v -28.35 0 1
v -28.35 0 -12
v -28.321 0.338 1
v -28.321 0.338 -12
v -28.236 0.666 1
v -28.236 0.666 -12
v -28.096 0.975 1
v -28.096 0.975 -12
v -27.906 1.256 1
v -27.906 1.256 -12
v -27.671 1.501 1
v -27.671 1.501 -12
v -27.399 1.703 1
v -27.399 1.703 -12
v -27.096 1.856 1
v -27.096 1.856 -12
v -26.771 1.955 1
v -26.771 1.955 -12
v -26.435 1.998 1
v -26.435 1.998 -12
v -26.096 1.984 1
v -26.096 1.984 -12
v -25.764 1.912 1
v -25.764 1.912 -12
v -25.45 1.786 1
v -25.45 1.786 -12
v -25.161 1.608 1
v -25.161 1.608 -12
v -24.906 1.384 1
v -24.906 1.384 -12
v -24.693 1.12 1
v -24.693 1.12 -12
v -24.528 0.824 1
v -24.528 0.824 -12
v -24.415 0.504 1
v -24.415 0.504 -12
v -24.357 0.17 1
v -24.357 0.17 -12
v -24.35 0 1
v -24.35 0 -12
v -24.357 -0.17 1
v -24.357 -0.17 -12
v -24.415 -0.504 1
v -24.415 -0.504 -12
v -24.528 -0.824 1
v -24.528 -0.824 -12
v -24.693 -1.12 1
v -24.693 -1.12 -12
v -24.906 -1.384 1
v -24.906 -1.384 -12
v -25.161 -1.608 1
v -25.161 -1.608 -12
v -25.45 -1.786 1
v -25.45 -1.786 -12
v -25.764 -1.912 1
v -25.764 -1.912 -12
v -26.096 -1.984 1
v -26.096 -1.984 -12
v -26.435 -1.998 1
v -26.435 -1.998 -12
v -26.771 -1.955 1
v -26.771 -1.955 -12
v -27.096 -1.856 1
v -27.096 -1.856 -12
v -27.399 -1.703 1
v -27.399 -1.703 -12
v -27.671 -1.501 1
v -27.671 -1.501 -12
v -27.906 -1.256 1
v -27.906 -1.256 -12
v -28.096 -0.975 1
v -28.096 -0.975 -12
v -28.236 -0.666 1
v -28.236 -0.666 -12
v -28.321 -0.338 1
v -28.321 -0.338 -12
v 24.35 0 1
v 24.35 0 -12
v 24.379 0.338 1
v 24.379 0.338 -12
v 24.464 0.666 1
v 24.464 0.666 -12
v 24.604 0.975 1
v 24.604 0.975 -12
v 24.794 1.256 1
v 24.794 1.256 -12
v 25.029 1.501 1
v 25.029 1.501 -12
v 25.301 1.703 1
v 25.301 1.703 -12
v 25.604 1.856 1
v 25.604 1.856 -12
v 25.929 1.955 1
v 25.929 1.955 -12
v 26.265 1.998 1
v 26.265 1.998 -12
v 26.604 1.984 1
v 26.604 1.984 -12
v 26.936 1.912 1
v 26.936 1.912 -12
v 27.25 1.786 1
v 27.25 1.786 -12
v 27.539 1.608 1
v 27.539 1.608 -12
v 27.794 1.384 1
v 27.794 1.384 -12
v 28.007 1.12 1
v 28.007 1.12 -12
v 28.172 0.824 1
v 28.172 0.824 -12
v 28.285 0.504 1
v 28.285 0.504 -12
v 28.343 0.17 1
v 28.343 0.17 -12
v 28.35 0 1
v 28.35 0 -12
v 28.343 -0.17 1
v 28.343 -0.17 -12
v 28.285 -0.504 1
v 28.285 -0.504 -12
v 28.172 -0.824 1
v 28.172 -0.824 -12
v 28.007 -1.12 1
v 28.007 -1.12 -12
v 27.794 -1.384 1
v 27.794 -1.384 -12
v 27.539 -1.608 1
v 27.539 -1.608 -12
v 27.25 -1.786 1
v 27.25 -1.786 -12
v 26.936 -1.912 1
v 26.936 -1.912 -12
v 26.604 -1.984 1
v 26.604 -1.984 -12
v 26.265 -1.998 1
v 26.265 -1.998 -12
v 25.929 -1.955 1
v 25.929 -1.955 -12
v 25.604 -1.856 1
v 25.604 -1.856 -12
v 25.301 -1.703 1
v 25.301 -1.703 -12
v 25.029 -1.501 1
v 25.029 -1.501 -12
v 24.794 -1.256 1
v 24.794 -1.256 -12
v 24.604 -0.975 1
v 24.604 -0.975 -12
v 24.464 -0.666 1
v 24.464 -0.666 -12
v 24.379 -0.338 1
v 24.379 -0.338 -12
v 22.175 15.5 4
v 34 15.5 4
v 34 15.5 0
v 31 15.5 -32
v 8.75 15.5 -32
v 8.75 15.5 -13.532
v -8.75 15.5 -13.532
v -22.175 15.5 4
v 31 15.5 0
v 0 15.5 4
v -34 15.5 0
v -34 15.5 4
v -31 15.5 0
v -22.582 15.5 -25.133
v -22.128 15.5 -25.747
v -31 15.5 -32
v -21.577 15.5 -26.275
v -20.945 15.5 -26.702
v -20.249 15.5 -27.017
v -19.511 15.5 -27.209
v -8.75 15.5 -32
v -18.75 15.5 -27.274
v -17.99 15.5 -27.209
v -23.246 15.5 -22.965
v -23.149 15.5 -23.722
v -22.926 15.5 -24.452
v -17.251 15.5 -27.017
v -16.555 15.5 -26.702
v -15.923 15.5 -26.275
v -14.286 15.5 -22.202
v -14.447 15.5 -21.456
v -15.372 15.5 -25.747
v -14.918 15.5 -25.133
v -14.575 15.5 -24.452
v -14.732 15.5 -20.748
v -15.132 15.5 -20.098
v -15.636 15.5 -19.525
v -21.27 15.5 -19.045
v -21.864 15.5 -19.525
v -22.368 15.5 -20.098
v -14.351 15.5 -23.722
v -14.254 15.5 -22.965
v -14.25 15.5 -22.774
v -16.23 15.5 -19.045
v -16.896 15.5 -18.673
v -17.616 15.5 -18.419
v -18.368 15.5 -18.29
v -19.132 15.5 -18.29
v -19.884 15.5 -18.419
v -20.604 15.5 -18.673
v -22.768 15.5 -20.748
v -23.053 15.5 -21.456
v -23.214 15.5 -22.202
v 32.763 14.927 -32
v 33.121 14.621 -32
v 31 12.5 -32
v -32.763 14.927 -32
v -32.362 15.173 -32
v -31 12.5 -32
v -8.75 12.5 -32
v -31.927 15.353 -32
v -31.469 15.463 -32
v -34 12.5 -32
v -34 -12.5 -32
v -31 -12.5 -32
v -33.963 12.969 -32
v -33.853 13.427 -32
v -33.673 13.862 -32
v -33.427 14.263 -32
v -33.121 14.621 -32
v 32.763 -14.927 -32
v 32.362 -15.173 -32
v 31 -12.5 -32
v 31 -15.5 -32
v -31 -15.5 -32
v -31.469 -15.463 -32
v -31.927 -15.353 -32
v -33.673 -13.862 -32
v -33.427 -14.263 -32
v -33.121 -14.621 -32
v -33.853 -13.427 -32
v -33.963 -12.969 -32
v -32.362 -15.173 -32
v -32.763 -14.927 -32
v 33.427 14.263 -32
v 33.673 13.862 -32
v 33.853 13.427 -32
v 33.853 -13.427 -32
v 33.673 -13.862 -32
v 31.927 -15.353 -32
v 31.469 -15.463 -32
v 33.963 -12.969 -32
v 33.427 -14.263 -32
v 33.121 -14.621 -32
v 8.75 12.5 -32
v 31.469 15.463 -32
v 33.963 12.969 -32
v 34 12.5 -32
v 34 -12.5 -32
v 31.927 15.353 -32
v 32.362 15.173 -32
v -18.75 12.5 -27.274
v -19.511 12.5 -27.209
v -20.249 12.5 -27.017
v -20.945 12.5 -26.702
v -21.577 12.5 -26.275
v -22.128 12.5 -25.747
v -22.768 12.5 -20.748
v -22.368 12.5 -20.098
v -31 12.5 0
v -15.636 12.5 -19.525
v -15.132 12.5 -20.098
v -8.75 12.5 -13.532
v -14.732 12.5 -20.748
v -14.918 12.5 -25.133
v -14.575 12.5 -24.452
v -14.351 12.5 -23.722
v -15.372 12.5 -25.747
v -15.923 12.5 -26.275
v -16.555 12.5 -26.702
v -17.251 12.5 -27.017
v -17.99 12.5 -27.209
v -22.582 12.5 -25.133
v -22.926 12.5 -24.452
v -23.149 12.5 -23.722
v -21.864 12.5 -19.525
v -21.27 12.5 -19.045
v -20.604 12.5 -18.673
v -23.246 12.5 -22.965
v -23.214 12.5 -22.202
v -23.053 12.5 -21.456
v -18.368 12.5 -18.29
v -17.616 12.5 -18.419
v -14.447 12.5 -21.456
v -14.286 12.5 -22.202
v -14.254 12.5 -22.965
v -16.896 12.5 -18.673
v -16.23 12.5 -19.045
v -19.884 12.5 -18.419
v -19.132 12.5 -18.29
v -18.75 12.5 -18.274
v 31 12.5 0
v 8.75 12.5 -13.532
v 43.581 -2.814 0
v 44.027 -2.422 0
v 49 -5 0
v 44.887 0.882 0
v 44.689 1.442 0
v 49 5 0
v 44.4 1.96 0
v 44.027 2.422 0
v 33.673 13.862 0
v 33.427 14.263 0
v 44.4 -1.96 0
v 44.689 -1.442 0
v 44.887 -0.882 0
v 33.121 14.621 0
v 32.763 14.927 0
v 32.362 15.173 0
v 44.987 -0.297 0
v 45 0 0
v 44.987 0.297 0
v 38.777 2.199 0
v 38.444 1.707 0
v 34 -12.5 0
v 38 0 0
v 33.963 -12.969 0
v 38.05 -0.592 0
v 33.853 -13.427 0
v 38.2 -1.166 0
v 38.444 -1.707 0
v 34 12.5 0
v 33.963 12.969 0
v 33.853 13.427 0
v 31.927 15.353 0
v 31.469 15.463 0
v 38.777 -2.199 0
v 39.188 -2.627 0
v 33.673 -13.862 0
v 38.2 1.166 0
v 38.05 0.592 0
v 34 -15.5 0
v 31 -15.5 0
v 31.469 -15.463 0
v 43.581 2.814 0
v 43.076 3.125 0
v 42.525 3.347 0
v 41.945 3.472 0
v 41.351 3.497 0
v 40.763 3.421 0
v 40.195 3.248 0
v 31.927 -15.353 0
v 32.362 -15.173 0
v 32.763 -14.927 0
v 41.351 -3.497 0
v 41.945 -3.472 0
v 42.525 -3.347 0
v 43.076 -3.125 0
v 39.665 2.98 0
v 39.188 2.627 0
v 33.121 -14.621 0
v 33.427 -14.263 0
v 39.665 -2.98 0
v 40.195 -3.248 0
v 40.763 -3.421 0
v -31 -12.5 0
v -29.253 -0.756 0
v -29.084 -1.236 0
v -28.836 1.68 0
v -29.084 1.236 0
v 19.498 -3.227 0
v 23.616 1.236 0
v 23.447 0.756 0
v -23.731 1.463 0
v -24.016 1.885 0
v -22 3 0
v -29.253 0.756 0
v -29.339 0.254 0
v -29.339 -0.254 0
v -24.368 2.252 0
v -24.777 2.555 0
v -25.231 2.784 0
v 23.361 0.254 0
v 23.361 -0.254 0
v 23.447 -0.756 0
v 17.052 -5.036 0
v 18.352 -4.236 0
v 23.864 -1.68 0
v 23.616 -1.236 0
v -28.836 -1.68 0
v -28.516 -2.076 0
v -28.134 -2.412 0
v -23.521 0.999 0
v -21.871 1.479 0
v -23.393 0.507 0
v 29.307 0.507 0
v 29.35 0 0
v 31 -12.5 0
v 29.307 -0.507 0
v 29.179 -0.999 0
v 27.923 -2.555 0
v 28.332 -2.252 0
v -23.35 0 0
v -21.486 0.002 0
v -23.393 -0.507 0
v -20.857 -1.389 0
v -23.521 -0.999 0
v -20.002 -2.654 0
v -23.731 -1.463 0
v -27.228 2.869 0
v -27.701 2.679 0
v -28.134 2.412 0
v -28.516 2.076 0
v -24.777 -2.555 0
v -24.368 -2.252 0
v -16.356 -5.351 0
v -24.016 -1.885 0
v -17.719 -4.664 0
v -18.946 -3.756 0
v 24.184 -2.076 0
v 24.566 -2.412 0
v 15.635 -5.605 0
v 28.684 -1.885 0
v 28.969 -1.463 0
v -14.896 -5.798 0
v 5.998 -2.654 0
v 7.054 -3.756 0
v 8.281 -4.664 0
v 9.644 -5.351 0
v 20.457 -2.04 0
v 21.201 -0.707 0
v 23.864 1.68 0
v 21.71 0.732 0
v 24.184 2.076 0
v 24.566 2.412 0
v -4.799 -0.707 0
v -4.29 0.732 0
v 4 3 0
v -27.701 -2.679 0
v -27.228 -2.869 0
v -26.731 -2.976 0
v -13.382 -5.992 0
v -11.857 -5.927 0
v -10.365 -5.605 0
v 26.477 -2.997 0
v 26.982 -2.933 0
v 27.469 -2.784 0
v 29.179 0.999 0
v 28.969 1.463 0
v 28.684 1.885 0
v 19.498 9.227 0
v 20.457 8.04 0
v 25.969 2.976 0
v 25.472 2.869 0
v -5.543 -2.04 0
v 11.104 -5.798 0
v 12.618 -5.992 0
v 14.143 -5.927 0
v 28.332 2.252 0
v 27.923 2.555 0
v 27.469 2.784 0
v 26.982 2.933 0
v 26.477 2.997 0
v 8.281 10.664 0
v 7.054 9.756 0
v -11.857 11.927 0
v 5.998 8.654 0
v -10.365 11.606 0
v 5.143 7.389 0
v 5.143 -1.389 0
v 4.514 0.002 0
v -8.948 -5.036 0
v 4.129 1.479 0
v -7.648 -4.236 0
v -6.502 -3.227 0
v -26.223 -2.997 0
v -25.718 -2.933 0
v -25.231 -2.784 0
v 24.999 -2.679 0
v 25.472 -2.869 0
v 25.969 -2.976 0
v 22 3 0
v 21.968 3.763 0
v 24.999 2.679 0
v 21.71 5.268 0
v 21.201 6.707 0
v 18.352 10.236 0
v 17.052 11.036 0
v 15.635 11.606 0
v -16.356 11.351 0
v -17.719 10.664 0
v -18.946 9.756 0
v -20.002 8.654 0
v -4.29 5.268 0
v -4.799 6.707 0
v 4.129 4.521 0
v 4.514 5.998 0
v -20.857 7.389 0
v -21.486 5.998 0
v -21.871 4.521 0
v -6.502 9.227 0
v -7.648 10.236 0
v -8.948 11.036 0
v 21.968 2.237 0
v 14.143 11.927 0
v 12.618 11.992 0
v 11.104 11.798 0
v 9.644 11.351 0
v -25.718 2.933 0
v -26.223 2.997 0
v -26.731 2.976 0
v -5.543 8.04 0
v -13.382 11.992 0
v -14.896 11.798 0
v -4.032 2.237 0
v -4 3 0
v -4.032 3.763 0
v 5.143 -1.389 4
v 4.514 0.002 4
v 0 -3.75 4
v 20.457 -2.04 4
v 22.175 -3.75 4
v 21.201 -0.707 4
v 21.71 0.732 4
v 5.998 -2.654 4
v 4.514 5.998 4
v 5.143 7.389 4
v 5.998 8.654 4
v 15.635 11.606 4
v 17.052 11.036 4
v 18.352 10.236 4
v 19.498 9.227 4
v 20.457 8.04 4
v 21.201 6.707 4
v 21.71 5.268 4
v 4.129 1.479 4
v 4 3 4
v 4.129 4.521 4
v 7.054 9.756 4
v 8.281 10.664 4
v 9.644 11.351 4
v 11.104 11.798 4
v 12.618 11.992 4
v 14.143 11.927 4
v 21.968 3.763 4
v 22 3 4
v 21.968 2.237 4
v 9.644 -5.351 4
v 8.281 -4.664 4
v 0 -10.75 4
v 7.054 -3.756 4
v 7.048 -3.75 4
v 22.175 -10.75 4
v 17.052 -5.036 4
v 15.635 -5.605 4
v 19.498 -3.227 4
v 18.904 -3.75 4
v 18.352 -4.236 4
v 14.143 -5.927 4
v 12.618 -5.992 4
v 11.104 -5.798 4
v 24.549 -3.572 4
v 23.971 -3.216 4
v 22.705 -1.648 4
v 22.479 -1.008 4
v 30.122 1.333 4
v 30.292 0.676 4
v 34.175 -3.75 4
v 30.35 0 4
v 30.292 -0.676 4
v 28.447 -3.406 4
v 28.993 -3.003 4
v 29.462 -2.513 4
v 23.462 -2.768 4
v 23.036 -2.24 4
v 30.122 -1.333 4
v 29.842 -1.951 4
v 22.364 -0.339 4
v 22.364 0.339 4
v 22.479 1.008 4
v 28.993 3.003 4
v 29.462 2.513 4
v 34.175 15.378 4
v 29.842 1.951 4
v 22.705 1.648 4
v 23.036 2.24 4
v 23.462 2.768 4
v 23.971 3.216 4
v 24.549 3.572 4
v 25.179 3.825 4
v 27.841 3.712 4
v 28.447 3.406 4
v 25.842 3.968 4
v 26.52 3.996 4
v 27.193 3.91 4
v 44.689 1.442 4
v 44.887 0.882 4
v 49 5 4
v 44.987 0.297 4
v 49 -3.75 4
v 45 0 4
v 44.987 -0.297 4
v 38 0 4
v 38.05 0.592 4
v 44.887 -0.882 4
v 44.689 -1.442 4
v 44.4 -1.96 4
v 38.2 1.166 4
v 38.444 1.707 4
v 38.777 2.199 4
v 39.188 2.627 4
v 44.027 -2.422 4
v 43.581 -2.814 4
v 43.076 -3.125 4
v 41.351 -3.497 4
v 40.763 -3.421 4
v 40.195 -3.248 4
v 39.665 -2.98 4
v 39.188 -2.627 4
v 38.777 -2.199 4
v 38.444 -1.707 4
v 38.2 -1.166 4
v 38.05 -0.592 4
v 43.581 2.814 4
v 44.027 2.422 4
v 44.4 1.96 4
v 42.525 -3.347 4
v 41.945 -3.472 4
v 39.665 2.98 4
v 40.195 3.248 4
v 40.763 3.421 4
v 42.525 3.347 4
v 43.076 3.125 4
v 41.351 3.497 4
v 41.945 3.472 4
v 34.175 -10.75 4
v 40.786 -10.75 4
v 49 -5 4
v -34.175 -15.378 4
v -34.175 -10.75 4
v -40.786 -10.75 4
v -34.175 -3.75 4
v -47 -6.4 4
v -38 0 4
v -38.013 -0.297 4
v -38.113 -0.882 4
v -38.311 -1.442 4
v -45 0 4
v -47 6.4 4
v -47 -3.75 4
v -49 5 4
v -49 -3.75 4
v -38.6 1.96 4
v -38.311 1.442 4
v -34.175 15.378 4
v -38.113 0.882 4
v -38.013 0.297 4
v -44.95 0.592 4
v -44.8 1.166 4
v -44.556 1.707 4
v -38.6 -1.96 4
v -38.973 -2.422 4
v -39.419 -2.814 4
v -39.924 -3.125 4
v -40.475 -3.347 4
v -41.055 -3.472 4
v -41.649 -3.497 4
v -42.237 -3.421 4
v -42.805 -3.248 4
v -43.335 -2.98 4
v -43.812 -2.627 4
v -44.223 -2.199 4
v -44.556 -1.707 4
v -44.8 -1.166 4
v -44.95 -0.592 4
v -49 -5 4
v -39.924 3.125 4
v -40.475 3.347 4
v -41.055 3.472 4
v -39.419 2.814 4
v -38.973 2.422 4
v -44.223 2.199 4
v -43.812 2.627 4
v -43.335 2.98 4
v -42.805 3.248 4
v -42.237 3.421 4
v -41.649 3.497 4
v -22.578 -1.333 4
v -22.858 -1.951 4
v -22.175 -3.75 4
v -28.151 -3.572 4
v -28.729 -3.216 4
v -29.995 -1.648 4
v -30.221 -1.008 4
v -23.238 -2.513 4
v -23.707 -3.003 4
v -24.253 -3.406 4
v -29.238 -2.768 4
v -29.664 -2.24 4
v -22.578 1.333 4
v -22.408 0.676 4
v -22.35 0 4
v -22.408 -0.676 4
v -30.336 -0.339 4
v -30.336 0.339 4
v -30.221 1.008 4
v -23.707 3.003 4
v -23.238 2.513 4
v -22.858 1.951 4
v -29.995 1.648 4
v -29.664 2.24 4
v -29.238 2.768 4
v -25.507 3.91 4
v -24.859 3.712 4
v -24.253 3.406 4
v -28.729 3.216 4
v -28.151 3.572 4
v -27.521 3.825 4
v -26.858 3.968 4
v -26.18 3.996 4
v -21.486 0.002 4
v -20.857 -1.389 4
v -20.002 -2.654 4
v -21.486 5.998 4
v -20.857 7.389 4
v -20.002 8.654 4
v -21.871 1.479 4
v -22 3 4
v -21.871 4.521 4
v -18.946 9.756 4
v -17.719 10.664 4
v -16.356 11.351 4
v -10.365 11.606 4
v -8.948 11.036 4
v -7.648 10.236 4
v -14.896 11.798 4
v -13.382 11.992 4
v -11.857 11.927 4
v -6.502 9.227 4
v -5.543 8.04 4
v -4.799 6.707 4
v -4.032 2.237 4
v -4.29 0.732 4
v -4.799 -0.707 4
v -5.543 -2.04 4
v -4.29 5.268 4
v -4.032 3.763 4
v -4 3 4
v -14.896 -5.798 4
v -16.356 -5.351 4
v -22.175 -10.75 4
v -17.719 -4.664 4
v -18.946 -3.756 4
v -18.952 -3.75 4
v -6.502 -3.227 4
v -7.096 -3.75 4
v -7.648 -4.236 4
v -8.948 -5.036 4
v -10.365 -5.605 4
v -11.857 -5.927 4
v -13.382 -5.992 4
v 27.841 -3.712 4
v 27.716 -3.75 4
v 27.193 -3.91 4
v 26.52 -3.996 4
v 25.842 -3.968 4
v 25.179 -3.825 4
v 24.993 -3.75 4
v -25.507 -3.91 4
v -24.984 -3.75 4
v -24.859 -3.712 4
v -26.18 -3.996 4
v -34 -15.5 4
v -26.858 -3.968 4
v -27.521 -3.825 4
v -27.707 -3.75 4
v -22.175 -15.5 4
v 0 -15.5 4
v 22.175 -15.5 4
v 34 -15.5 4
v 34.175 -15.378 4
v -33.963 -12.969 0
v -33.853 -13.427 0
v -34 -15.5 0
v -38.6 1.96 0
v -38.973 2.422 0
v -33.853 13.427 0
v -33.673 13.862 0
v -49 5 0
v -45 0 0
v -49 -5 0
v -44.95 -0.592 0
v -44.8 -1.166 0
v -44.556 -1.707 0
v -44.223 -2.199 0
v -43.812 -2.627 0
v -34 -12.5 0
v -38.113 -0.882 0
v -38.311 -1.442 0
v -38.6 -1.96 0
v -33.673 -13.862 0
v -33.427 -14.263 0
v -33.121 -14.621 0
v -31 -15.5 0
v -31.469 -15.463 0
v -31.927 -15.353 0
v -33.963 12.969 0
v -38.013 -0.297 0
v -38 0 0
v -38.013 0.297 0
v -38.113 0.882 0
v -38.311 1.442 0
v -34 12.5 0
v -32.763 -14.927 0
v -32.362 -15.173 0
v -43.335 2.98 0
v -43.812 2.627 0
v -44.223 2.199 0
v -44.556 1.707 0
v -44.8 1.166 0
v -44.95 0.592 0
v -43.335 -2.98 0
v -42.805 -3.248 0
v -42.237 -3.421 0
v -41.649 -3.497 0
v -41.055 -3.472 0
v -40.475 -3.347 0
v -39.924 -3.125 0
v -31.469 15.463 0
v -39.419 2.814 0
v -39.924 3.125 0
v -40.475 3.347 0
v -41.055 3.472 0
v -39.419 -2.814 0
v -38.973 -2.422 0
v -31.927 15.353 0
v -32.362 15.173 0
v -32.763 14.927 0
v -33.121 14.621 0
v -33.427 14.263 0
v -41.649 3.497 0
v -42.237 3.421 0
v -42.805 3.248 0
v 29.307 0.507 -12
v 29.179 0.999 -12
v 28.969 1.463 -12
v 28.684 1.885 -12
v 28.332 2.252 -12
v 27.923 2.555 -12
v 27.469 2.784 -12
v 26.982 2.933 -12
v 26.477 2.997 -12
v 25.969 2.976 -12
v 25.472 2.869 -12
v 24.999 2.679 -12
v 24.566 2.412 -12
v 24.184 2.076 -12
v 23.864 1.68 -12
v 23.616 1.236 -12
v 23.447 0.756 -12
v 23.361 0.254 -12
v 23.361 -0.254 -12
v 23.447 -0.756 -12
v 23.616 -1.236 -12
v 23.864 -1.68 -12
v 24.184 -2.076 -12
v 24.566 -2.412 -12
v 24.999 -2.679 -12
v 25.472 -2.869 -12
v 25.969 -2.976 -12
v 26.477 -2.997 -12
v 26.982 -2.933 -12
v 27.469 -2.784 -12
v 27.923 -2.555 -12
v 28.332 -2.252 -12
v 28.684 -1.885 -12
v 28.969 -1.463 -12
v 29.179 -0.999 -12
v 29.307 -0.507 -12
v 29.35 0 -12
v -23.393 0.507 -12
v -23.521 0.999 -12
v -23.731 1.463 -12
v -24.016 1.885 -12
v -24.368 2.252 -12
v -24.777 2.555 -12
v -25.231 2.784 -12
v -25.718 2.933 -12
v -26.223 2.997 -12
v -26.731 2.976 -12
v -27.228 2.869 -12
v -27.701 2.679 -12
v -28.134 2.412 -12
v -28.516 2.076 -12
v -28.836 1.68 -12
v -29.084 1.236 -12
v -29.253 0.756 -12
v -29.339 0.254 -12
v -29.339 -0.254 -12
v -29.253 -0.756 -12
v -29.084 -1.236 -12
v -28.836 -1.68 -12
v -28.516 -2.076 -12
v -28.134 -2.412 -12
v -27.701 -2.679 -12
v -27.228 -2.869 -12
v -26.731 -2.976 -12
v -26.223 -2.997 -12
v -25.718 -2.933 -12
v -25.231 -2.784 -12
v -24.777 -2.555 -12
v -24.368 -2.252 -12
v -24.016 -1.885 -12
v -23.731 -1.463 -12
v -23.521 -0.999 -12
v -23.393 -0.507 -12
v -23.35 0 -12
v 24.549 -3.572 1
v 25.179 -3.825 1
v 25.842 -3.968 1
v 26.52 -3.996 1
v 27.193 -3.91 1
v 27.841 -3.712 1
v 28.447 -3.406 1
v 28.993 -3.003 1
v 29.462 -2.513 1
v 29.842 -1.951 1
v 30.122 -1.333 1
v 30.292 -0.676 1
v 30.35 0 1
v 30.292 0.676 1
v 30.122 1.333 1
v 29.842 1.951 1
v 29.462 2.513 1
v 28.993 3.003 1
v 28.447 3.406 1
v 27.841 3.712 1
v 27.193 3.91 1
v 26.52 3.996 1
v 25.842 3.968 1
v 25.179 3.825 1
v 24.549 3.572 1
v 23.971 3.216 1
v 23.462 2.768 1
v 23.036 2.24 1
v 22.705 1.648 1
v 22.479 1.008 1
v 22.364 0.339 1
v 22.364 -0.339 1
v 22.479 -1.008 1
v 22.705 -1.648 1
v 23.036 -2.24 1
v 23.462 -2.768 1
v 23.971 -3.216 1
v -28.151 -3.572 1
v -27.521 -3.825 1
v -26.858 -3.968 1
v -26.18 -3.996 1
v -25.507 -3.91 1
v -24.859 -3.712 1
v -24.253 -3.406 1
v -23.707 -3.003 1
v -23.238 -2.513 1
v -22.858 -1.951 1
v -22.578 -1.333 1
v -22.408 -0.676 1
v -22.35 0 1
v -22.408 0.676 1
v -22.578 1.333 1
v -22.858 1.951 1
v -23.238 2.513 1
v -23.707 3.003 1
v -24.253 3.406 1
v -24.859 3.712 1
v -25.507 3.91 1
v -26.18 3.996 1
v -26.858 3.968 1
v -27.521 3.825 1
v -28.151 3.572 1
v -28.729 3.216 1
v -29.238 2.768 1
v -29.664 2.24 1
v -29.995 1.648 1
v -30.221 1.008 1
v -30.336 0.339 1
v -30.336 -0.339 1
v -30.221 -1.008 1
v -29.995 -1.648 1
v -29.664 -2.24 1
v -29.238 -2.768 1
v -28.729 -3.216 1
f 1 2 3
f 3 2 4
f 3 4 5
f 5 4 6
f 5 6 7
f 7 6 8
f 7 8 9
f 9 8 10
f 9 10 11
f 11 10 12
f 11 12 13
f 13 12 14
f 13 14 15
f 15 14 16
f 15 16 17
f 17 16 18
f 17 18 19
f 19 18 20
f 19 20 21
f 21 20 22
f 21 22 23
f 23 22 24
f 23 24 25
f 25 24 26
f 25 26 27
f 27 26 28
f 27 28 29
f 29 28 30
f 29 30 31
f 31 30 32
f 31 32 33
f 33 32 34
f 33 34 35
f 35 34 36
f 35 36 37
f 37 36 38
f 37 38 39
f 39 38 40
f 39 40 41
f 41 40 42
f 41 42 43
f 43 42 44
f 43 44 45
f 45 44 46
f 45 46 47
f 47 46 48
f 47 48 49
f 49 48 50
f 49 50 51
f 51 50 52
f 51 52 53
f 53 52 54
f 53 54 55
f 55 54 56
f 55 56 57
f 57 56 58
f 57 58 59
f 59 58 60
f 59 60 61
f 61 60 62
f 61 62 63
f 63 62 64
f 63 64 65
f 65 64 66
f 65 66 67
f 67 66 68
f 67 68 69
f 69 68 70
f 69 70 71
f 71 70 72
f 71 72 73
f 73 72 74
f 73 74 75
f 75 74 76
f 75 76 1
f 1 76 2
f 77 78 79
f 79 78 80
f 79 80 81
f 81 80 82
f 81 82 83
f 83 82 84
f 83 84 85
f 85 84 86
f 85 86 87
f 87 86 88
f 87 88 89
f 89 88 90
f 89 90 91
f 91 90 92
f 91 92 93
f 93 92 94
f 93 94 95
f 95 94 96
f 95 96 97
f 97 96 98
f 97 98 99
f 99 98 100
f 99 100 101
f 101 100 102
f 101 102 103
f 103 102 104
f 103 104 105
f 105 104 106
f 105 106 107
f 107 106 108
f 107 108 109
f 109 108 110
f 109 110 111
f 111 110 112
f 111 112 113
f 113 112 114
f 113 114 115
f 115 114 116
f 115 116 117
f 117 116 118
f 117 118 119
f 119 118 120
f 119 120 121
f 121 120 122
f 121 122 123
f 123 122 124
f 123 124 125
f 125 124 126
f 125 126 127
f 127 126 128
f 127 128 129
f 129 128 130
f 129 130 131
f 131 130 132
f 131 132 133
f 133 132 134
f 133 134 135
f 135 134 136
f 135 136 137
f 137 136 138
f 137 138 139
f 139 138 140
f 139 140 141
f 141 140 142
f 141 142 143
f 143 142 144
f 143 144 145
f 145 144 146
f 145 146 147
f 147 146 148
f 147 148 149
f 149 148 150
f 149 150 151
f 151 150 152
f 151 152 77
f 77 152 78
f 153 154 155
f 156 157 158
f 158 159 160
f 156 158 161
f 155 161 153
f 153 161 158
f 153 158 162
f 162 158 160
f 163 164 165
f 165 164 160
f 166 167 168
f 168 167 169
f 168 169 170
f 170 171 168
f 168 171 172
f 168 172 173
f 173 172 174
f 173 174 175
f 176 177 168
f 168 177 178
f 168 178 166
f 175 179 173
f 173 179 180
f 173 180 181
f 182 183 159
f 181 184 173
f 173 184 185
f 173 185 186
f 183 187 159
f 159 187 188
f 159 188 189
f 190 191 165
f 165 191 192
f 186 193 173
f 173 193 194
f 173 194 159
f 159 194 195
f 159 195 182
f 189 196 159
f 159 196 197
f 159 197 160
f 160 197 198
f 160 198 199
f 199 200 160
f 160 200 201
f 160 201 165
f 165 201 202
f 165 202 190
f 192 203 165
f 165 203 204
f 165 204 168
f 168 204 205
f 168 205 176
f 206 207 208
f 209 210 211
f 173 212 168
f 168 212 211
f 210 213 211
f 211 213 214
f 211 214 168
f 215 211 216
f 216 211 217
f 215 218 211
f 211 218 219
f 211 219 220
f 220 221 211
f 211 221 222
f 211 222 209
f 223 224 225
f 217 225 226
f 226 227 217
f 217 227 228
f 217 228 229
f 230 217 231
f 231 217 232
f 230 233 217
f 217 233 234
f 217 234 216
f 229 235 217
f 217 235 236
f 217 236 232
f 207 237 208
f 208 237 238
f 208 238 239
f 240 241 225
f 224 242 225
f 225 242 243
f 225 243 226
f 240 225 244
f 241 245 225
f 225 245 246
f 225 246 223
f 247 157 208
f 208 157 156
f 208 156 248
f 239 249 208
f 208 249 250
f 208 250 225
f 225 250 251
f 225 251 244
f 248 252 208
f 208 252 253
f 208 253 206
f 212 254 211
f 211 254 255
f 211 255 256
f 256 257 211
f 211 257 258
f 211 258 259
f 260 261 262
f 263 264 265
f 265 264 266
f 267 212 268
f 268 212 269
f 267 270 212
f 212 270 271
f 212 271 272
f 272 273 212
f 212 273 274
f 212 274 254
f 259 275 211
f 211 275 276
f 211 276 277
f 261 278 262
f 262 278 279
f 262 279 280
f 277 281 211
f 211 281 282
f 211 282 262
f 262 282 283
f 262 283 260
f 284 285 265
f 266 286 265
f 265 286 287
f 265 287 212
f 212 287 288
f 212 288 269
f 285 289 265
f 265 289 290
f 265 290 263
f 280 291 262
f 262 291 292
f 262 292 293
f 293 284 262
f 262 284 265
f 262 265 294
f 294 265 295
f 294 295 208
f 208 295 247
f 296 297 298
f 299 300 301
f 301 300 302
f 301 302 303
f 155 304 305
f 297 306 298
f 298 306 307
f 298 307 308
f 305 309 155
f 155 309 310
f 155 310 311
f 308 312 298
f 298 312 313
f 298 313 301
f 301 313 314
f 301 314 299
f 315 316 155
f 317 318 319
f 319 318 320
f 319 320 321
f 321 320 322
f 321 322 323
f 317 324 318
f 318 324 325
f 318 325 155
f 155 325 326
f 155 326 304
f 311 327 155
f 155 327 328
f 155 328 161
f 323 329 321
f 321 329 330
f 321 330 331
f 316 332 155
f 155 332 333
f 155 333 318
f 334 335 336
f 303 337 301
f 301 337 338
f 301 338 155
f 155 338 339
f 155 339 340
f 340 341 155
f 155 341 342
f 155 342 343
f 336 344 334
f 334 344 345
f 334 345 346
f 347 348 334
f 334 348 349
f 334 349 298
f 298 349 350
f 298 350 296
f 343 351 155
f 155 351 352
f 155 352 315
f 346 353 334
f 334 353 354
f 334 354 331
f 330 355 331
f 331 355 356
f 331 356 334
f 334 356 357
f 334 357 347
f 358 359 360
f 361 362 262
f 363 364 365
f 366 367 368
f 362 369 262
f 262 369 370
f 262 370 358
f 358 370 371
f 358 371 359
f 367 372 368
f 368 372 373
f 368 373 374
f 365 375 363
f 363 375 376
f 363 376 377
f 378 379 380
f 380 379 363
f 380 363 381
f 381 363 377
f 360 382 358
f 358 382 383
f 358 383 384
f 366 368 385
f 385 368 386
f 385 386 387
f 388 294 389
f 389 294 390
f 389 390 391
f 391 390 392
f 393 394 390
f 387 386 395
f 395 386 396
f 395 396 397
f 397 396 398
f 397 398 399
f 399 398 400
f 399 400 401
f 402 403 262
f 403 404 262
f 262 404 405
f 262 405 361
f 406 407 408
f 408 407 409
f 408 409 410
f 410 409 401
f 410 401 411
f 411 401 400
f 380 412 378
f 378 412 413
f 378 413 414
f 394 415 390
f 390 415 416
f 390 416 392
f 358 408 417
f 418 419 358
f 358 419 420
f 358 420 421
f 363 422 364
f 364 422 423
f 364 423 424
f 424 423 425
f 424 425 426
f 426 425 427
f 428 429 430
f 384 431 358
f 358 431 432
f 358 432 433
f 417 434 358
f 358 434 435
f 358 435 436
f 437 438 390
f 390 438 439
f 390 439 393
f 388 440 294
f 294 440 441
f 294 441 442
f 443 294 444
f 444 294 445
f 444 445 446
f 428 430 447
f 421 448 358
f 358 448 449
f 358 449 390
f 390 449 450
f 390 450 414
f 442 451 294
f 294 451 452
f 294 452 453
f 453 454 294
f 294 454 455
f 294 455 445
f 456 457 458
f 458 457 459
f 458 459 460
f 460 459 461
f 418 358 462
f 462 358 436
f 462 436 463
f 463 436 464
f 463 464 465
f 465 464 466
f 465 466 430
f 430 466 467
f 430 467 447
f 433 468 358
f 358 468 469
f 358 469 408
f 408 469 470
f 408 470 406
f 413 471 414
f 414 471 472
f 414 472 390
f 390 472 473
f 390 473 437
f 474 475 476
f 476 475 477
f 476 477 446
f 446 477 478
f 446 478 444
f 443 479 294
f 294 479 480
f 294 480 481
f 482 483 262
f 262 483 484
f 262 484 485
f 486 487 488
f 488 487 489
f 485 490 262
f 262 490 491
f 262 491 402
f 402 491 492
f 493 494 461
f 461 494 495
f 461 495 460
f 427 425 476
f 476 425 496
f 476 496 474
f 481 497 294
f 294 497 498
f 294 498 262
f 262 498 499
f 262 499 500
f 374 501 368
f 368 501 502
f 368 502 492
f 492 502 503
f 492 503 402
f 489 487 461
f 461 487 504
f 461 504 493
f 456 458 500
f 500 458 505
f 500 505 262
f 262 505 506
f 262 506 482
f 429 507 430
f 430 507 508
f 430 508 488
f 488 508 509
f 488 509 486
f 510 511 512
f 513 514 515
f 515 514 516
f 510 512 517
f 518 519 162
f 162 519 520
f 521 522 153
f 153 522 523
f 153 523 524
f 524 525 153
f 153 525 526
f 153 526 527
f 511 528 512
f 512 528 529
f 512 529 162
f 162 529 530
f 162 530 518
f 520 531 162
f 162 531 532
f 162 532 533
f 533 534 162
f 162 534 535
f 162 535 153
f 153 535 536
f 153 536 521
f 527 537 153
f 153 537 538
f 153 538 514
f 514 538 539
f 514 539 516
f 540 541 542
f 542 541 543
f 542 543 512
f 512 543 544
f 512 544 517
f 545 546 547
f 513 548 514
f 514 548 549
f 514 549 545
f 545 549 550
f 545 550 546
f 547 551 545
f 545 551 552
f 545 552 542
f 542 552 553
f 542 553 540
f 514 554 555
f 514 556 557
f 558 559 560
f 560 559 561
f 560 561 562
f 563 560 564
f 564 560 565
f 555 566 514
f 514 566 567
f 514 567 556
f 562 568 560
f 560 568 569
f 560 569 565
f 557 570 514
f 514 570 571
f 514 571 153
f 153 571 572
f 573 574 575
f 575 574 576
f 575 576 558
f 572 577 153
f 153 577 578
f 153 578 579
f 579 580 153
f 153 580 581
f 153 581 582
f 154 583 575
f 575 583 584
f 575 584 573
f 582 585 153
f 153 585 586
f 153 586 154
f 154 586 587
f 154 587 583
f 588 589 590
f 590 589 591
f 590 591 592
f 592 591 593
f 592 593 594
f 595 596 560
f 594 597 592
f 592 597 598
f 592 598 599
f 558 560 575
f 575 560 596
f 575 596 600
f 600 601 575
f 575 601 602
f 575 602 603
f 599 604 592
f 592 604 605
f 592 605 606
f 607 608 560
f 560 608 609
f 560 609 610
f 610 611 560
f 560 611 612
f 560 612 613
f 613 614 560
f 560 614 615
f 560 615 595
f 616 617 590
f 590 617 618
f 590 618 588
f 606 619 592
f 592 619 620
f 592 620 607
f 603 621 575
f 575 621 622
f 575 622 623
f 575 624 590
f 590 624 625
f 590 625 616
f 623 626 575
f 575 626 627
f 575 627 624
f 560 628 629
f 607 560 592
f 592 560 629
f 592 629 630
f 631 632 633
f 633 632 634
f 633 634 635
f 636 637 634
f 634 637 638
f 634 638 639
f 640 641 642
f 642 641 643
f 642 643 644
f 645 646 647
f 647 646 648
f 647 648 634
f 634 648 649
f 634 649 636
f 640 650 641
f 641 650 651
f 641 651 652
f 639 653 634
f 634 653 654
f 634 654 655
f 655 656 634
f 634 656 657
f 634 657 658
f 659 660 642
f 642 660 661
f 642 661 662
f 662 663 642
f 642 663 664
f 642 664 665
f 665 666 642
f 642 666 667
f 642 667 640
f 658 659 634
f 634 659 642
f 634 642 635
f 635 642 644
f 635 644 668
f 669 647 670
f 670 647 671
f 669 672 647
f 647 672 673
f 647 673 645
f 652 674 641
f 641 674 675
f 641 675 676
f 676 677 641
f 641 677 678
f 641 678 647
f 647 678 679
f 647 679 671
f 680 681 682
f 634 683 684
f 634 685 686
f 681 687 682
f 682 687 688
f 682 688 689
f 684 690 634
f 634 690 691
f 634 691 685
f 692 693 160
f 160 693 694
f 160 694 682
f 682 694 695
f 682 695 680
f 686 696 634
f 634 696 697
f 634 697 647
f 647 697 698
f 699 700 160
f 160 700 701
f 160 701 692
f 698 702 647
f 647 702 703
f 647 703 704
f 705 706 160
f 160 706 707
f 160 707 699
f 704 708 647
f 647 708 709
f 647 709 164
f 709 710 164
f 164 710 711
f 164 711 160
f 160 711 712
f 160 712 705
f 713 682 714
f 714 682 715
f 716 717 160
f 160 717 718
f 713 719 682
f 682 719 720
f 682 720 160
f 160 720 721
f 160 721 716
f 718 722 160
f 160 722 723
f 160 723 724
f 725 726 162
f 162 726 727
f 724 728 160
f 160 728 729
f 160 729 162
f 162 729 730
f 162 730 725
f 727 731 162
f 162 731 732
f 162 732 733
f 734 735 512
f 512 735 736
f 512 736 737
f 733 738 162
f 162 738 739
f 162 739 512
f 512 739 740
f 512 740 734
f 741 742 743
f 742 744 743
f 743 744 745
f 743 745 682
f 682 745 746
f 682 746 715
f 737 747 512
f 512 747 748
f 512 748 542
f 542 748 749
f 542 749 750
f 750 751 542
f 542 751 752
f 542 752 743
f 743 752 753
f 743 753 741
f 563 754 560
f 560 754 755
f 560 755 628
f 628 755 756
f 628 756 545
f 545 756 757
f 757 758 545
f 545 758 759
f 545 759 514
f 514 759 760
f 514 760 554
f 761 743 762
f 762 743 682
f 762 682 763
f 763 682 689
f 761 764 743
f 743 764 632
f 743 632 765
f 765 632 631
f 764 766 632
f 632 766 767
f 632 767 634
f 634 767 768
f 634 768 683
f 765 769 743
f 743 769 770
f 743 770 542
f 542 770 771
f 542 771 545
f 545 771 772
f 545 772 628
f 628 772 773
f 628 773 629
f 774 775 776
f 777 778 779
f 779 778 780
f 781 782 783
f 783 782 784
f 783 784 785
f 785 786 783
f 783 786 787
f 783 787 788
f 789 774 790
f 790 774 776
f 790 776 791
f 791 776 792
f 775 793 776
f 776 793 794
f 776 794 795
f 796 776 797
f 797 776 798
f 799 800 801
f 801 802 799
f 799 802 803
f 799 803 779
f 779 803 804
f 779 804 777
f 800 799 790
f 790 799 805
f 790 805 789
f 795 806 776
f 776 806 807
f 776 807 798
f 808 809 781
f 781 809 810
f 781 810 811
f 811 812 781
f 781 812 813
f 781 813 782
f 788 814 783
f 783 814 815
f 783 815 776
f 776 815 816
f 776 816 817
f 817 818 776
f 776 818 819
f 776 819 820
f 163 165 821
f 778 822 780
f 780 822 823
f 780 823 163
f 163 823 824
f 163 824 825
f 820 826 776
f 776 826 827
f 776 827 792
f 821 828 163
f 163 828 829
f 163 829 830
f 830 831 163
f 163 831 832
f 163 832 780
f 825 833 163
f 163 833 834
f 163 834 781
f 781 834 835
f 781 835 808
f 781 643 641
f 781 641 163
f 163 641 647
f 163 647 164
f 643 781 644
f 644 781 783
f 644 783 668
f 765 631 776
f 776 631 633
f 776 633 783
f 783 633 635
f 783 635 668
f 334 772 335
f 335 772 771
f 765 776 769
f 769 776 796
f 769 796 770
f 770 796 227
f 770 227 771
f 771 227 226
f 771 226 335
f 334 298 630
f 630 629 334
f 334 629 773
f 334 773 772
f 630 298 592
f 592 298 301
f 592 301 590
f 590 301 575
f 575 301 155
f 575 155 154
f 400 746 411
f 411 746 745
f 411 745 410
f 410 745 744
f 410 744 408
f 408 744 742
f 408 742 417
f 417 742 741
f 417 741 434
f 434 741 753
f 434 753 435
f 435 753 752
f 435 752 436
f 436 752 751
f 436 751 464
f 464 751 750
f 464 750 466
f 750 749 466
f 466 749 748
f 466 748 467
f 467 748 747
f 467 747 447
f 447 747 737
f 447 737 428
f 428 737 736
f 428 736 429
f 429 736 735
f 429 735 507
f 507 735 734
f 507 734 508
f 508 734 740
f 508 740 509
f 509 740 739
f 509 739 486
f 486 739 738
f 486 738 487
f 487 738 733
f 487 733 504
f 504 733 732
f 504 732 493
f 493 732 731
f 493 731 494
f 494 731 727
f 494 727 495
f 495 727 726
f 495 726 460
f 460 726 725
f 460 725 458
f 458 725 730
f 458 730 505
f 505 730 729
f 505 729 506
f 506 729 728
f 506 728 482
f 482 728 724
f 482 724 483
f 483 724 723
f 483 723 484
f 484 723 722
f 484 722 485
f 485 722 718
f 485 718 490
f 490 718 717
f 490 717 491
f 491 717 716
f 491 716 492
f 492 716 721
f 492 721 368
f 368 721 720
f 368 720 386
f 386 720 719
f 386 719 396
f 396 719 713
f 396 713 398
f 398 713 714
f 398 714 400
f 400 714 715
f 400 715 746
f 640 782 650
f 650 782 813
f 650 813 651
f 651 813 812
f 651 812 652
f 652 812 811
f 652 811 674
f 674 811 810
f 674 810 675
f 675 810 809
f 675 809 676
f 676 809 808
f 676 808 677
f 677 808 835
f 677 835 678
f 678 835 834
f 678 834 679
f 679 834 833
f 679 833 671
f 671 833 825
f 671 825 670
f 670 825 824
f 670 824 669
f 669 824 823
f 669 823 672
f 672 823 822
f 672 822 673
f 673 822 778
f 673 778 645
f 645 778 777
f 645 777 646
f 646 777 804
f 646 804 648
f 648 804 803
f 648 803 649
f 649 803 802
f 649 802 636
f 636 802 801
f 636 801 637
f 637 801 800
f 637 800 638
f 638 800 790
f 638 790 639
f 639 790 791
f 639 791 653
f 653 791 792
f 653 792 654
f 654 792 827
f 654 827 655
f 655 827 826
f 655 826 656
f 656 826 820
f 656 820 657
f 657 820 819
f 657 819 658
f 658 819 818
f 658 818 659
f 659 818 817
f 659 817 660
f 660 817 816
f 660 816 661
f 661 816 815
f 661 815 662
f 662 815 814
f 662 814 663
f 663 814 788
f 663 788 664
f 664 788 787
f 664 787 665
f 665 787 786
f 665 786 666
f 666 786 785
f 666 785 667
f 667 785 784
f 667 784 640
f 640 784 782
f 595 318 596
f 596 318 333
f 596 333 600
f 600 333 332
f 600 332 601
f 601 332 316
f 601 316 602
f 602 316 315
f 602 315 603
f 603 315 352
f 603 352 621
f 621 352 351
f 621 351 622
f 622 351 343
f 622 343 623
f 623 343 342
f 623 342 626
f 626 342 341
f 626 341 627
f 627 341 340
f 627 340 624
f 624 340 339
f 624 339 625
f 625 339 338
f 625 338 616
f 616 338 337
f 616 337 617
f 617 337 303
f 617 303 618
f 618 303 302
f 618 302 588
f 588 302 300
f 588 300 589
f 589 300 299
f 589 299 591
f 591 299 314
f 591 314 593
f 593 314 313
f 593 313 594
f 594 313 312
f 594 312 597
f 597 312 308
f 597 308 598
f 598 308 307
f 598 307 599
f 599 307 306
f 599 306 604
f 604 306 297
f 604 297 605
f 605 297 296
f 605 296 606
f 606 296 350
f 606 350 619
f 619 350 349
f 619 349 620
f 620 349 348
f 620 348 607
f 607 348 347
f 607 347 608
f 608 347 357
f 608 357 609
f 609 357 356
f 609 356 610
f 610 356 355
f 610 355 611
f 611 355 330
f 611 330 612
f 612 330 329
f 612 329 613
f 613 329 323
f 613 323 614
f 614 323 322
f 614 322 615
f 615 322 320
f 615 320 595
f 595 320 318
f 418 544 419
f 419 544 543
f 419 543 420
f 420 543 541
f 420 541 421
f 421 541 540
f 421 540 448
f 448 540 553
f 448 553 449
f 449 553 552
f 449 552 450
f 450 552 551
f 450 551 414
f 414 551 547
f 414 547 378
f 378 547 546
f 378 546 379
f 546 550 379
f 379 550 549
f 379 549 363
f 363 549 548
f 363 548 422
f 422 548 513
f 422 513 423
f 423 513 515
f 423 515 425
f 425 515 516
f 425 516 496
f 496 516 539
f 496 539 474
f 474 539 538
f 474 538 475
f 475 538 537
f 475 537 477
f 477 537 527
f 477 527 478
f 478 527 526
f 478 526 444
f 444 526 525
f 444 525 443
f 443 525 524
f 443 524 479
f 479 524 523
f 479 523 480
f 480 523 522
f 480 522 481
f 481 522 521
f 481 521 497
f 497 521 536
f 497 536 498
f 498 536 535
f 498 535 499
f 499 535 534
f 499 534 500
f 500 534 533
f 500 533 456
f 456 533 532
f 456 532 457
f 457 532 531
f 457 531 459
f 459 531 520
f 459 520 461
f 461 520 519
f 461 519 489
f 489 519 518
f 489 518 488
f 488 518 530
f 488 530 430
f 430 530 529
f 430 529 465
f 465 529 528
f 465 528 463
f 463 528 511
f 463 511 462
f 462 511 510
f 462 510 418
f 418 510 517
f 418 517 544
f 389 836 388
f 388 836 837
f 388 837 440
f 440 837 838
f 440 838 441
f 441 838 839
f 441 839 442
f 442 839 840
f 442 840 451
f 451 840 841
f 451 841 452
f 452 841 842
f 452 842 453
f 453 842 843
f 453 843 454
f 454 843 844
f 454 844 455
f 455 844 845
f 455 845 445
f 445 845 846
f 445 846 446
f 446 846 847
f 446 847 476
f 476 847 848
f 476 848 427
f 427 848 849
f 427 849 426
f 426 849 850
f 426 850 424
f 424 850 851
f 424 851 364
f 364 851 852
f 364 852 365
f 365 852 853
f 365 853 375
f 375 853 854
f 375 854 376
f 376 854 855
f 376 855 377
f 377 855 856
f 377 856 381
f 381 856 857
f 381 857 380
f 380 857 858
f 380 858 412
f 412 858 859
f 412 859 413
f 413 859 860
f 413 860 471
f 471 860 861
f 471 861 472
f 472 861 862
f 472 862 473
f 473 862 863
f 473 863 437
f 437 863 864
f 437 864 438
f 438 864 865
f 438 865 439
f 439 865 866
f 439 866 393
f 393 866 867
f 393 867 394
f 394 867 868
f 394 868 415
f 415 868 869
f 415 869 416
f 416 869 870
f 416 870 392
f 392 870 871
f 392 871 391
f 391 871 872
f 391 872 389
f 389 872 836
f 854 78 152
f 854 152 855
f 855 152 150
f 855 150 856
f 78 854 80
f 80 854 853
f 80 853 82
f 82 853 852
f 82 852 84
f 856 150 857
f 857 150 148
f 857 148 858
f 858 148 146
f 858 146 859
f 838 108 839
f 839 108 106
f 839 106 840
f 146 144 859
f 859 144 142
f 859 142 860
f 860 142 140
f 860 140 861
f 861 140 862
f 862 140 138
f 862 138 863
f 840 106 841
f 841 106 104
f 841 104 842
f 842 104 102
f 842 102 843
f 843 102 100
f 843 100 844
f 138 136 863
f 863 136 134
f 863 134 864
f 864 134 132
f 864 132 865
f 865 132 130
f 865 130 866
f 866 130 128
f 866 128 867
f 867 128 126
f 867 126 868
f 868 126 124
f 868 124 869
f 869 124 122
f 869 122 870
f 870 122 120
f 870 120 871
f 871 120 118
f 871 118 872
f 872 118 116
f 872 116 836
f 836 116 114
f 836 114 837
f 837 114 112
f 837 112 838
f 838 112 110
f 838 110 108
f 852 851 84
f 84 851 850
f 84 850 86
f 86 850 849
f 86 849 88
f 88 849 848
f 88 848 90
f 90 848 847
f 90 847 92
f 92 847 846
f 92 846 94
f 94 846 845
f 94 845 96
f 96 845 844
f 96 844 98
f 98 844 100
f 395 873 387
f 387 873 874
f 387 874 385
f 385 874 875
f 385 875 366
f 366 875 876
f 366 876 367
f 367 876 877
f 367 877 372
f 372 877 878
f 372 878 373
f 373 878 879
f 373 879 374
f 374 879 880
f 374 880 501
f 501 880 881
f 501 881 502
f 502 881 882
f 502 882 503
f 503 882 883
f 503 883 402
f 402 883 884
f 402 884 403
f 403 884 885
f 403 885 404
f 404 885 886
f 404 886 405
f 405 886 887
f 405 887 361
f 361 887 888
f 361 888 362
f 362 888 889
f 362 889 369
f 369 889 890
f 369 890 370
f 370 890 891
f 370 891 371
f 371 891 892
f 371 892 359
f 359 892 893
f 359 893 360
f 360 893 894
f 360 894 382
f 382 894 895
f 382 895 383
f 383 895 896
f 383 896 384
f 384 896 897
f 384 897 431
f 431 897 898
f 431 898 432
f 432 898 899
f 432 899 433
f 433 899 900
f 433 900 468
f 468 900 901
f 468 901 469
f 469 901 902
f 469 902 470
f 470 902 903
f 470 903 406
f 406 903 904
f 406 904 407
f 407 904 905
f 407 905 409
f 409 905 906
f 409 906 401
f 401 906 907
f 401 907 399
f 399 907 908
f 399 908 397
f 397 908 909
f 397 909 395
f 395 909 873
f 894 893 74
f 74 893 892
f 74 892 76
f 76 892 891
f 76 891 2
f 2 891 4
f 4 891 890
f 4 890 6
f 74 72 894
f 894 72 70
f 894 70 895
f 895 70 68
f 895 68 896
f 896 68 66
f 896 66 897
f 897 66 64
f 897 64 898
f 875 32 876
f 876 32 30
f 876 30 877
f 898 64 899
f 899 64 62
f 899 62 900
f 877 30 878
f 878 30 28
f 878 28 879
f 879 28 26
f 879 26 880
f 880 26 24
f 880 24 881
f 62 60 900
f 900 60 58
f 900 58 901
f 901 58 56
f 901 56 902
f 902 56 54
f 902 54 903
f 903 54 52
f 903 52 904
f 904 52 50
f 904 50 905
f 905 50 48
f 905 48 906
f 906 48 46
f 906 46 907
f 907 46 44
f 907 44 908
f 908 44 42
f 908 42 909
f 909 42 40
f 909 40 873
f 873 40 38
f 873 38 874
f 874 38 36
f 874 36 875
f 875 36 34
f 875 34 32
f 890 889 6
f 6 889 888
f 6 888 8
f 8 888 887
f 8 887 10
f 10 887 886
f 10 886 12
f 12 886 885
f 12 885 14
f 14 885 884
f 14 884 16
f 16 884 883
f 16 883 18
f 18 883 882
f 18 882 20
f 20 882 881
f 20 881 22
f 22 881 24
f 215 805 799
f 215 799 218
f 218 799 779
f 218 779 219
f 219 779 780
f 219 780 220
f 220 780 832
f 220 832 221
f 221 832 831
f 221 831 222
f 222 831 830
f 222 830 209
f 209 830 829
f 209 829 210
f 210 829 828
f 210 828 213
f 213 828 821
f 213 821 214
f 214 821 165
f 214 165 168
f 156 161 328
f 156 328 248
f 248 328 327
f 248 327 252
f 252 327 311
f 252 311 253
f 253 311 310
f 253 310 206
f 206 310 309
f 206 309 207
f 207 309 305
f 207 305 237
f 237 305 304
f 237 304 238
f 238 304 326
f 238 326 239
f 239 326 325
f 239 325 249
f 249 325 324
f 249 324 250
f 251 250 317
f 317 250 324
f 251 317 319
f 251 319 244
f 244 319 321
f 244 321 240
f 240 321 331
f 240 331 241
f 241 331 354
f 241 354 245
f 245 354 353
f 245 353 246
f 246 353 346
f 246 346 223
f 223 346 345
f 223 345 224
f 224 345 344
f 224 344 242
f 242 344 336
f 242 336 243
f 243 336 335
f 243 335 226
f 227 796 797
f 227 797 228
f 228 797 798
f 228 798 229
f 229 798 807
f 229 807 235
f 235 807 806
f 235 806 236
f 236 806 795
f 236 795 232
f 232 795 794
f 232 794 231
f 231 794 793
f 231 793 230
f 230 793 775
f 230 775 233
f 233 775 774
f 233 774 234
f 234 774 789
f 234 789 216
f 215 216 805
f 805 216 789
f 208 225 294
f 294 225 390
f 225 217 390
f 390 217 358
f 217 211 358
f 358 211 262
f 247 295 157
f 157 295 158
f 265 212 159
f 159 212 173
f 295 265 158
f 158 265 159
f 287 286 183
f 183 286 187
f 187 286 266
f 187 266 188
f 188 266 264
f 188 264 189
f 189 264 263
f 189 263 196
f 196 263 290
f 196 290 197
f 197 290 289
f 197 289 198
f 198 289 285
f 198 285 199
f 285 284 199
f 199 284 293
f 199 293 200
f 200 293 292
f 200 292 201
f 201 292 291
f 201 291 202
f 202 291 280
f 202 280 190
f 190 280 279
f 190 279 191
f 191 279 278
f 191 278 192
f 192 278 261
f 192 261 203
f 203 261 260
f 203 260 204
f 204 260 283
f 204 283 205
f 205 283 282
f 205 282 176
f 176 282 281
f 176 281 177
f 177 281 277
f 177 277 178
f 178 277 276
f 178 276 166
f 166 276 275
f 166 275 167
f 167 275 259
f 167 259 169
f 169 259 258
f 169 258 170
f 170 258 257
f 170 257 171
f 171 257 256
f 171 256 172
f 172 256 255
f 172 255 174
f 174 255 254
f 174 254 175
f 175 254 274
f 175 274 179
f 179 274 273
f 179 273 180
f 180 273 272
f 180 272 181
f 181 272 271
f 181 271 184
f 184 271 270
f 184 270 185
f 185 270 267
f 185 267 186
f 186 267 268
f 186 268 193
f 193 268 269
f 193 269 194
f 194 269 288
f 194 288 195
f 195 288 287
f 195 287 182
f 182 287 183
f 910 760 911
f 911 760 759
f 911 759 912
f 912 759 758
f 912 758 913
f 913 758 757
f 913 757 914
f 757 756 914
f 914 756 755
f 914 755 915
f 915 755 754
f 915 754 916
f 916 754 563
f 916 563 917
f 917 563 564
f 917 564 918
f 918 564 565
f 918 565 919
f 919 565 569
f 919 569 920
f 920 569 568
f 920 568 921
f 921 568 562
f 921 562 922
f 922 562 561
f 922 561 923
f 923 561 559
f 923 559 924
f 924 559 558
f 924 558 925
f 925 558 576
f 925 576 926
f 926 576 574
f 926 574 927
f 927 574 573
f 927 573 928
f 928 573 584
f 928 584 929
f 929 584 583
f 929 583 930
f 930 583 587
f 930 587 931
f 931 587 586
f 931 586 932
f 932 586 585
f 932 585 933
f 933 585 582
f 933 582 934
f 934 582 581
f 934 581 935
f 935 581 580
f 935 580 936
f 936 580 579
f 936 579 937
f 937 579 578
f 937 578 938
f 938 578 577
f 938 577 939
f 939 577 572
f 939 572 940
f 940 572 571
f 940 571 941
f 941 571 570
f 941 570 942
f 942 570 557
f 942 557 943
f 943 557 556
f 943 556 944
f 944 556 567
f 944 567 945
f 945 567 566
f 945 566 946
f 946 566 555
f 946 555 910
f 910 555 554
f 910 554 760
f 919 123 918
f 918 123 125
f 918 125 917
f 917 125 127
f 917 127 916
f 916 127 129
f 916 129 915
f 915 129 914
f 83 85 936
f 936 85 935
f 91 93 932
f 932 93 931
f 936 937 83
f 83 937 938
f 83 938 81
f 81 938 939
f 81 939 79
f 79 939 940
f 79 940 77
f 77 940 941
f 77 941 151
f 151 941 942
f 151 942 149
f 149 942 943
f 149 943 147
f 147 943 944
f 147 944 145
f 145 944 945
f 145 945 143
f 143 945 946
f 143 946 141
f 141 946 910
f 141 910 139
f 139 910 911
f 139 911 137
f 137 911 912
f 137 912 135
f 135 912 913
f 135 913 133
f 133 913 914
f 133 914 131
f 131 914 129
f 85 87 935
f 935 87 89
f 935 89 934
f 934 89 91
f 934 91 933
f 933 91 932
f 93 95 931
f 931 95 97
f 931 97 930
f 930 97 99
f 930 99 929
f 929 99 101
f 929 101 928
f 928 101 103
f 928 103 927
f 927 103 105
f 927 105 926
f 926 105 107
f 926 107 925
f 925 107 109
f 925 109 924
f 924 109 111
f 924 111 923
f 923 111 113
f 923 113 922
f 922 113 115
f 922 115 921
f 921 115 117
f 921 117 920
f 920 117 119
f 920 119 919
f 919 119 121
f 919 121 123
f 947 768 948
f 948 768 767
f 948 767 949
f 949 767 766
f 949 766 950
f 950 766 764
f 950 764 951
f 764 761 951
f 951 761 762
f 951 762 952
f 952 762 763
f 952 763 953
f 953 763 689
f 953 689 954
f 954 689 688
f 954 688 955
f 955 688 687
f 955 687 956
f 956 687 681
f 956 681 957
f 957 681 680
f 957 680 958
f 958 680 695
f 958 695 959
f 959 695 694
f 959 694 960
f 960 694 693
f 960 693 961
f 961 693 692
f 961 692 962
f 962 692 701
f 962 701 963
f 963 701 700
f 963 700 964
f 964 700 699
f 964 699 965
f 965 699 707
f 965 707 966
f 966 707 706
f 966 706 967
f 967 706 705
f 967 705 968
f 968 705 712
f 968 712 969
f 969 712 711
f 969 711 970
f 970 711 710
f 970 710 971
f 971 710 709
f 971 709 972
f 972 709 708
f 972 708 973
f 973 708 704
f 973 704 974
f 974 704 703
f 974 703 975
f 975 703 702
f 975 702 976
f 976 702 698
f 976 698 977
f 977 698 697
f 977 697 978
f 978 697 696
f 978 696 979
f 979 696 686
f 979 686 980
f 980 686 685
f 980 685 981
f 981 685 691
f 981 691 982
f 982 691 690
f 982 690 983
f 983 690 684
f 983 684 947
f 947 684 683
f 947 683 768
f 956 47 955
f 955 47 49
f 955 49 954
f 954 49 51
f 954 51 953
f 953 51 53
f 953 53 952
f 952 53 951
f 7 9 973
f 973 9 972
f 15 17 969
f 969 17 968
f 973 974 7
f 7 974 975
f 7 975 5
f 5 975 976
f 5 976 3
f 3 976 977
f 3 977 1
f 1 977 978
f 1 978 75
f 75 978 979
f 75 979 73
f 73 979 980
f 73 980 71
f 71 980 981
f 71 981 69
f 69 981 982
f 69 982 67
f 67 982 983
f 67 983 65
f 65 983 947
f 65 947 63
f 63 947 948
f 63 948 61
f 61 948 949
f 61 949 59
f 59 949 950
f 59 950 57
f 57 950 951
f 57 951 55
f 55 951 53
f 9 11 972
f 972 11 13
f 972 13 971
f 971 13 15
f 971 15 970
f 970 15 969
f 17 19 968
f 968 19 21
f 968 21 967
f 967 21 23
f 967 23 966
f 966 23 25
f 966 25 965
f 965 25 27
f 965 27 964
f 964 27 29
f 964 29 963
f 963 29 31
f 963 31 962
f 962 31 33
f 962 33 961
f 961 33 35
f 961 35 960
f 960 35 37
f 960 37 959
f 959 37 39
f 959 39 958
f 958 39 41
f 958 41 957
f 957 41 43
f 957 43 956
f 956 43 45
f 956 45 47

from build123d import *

# Parameters (mm, degrees)
CROQUIS1_R                 = 2
CROQUIS1_R_2               = 3.5
CROQUIS1_R_3               = 9
SALIENTE_EXTRUIR1_DEPTH    = 4
SALIENTE_EXTRUIR2_START    = -12
CROQUIS3_R                 = 3
CROQUIS3_R_2               = 2
SALIENTE_EXTRUIR2_DEPTH    = 12
CROQUIS4_W                 = 62
CROQUIS4_H                 = 25
SALIENTE_EXTRUIR3_DEPTH    = 32
CORTAR_EXTRUIR1_DEPTH      = 10
CORTAR_EXTRUIR1_DEPTH_BACK = 18
CROQUIS5_R                 = 4.5
CROQUIS5_W                 = 17.5
CROQUIS5_H                 = 18.482527597
CORTAR_EXTRUIR2_START      = -3
CROQUIS6_R                 = 4
CROQUIS6_R_2               = 2
CORTAR_EXTRUIR2_DEPTH      = 3


with BuildPart() as part:
    # Croquis1 → Saliente-Extruir1 (new body)
    with BuildSketch(Plane.XY):
        Polygon((-34, 15.5), (34, 15.5), (49, 5), (49, -5), (34, -15.5), (-34, -15.5), (-49, -5), (-49, 5), align=None)
        with Locations((-26.35, 0)):
            Circle(CROQUIS1_R, mode=Mode.SUBTRACT)
        with Locations((26.35, 0)):
            Circle(CROQUIS1_R, mode=Mode.SUBTRACT)
        with Locations((-41.5, 0)):
            Circle(CROQUIS1_R_2, mode=Mode.SUBTRACT)
        with Locations((41.5, 0)):
            Circle(CROQUIS1_R_2, mode=Mode.SUBTRACT)
        with Locations((-13, 3)):
            Circle(CROQUIS1_R_3, mode=Mode.SUBTRACT)
        with Locations((13, 3)):
            Circle(CROQUIS1_R_3, mode=Mode.SUBTRACT)
    extrude(amount=SALIENTE_EXTRUIR1_DEPTH)

    # Croquis3 → Saliente-Extruir2 (add)
    # profile 1 of 2: a face of its own
    with BuildSketch(Plane.XY.offset(SALIENTE_EXTRUIR2_START)):
        with Locations((26.35, 0)):
            Circle(CROQUIS3_R)
        with Locations((26.35, 0)):
            Circle(CROQUIS3_R_2, mode=Mode.SUBTRACT)
    # profile 2 of 2: a face of its own
    with BuildSketch(Plane.XY.offset(SALIENTE_EXTRUIR2_START)):
        with Locations((-26.35, 0)):
            Circle(CROQUIS3_R)
        with Locations((-26.35, 0)):
            Circle(CROQUIS3_R_2, mode=Mode.SUBTRACT)
    extrude(amount=SALIENTE_EXTRUIR2_DEPTH)

    # Croquis4 → Saliente-Extruir3 (add)
    with BuildSketch(Plane.XY):
        with BuildLine():
            Line((31, 15.5), (-31, 15.5))
            ThreePointArc((-31, 15.5), (-33.121320344, 14.621320344), (-34, 12.5))
            Line((-34, 12.5), (-34, -12.5))
            ThreePointArc((-34, -12.5), (-33.121320344, -14.621320344), (-31, -15.5))
            Line((-31, -15.5), (31, -15.5))
            ThreePointArc((31, -15.5), (33.121320344, -14.621320344), (34, -12.5))
            Line((34, -12.5), (34, 12.5))
            ThreePointArc((34, 12.5), (33.121320344, 14.621320344), (31, 15.5))
        make_face()
        Rectangle(CROQUIS4_W, CROQUIS4_H, mode=Mode.SUBTRACT)
    extrude(amount=-SALIENTE_EXTRUIR3_DEPTH)

    # Croquis5 → Cortar-Extruir1 (cut, two sides: drawn at the far end of the back side and taken through both)
    with BuildSketch(Plane(origin=(0, 16, 0), x_dir=(1, 0, 0), z_dir=(0, 1, 0)).offset(-CORTAR_EXTRUIR1_DEPTH_BACK)):
        with Locations((-18.75, 22.773683321)):
            Circle(CROQUIS5_R)
        with Locations((0, 22.77368332)):
            Rectangle(CROQUIS5_W, CROQUIS5_H)
    extrude(amount=CORTAR_EXTRUIR1_DEPTH + CORTAR_EXTRUIR1_DEPTH_BACK, mode=Mode.SUBTRACT)

    # Croquis6 → Cortar-Extruir2 (cut)
    # profile 1 of 2: a face of its own
    with BuildSketch(Plane.XY.offset(4).offset(CORTAR_EXTRUIR2_START)):
        with Locations((26.35, 0)):
            Circle(CROQUIS6_R)
        with Locations((26.35, 0)):
            Circle(CROQUIS6_R_2, mode=Mode.SUBTRACT)
    # profile 2 of 2: a face of its own
    with BuildSketch(Plane.XY.offset(4).offset(CORTAR_EXTRUIR2_START)):
        with Locations((-26.35, 0)):
            Circle(CROQUIS6_R)
        with Locations((-26.35, 0)):
            Circle(CROQUIS6_R_2, mode=Mode.SUBTRACT)
    extrude(amount=CORTAR_EXTRUIR2_DEPTH, mode=Mode.SUBTRACT)


solid = part.part
